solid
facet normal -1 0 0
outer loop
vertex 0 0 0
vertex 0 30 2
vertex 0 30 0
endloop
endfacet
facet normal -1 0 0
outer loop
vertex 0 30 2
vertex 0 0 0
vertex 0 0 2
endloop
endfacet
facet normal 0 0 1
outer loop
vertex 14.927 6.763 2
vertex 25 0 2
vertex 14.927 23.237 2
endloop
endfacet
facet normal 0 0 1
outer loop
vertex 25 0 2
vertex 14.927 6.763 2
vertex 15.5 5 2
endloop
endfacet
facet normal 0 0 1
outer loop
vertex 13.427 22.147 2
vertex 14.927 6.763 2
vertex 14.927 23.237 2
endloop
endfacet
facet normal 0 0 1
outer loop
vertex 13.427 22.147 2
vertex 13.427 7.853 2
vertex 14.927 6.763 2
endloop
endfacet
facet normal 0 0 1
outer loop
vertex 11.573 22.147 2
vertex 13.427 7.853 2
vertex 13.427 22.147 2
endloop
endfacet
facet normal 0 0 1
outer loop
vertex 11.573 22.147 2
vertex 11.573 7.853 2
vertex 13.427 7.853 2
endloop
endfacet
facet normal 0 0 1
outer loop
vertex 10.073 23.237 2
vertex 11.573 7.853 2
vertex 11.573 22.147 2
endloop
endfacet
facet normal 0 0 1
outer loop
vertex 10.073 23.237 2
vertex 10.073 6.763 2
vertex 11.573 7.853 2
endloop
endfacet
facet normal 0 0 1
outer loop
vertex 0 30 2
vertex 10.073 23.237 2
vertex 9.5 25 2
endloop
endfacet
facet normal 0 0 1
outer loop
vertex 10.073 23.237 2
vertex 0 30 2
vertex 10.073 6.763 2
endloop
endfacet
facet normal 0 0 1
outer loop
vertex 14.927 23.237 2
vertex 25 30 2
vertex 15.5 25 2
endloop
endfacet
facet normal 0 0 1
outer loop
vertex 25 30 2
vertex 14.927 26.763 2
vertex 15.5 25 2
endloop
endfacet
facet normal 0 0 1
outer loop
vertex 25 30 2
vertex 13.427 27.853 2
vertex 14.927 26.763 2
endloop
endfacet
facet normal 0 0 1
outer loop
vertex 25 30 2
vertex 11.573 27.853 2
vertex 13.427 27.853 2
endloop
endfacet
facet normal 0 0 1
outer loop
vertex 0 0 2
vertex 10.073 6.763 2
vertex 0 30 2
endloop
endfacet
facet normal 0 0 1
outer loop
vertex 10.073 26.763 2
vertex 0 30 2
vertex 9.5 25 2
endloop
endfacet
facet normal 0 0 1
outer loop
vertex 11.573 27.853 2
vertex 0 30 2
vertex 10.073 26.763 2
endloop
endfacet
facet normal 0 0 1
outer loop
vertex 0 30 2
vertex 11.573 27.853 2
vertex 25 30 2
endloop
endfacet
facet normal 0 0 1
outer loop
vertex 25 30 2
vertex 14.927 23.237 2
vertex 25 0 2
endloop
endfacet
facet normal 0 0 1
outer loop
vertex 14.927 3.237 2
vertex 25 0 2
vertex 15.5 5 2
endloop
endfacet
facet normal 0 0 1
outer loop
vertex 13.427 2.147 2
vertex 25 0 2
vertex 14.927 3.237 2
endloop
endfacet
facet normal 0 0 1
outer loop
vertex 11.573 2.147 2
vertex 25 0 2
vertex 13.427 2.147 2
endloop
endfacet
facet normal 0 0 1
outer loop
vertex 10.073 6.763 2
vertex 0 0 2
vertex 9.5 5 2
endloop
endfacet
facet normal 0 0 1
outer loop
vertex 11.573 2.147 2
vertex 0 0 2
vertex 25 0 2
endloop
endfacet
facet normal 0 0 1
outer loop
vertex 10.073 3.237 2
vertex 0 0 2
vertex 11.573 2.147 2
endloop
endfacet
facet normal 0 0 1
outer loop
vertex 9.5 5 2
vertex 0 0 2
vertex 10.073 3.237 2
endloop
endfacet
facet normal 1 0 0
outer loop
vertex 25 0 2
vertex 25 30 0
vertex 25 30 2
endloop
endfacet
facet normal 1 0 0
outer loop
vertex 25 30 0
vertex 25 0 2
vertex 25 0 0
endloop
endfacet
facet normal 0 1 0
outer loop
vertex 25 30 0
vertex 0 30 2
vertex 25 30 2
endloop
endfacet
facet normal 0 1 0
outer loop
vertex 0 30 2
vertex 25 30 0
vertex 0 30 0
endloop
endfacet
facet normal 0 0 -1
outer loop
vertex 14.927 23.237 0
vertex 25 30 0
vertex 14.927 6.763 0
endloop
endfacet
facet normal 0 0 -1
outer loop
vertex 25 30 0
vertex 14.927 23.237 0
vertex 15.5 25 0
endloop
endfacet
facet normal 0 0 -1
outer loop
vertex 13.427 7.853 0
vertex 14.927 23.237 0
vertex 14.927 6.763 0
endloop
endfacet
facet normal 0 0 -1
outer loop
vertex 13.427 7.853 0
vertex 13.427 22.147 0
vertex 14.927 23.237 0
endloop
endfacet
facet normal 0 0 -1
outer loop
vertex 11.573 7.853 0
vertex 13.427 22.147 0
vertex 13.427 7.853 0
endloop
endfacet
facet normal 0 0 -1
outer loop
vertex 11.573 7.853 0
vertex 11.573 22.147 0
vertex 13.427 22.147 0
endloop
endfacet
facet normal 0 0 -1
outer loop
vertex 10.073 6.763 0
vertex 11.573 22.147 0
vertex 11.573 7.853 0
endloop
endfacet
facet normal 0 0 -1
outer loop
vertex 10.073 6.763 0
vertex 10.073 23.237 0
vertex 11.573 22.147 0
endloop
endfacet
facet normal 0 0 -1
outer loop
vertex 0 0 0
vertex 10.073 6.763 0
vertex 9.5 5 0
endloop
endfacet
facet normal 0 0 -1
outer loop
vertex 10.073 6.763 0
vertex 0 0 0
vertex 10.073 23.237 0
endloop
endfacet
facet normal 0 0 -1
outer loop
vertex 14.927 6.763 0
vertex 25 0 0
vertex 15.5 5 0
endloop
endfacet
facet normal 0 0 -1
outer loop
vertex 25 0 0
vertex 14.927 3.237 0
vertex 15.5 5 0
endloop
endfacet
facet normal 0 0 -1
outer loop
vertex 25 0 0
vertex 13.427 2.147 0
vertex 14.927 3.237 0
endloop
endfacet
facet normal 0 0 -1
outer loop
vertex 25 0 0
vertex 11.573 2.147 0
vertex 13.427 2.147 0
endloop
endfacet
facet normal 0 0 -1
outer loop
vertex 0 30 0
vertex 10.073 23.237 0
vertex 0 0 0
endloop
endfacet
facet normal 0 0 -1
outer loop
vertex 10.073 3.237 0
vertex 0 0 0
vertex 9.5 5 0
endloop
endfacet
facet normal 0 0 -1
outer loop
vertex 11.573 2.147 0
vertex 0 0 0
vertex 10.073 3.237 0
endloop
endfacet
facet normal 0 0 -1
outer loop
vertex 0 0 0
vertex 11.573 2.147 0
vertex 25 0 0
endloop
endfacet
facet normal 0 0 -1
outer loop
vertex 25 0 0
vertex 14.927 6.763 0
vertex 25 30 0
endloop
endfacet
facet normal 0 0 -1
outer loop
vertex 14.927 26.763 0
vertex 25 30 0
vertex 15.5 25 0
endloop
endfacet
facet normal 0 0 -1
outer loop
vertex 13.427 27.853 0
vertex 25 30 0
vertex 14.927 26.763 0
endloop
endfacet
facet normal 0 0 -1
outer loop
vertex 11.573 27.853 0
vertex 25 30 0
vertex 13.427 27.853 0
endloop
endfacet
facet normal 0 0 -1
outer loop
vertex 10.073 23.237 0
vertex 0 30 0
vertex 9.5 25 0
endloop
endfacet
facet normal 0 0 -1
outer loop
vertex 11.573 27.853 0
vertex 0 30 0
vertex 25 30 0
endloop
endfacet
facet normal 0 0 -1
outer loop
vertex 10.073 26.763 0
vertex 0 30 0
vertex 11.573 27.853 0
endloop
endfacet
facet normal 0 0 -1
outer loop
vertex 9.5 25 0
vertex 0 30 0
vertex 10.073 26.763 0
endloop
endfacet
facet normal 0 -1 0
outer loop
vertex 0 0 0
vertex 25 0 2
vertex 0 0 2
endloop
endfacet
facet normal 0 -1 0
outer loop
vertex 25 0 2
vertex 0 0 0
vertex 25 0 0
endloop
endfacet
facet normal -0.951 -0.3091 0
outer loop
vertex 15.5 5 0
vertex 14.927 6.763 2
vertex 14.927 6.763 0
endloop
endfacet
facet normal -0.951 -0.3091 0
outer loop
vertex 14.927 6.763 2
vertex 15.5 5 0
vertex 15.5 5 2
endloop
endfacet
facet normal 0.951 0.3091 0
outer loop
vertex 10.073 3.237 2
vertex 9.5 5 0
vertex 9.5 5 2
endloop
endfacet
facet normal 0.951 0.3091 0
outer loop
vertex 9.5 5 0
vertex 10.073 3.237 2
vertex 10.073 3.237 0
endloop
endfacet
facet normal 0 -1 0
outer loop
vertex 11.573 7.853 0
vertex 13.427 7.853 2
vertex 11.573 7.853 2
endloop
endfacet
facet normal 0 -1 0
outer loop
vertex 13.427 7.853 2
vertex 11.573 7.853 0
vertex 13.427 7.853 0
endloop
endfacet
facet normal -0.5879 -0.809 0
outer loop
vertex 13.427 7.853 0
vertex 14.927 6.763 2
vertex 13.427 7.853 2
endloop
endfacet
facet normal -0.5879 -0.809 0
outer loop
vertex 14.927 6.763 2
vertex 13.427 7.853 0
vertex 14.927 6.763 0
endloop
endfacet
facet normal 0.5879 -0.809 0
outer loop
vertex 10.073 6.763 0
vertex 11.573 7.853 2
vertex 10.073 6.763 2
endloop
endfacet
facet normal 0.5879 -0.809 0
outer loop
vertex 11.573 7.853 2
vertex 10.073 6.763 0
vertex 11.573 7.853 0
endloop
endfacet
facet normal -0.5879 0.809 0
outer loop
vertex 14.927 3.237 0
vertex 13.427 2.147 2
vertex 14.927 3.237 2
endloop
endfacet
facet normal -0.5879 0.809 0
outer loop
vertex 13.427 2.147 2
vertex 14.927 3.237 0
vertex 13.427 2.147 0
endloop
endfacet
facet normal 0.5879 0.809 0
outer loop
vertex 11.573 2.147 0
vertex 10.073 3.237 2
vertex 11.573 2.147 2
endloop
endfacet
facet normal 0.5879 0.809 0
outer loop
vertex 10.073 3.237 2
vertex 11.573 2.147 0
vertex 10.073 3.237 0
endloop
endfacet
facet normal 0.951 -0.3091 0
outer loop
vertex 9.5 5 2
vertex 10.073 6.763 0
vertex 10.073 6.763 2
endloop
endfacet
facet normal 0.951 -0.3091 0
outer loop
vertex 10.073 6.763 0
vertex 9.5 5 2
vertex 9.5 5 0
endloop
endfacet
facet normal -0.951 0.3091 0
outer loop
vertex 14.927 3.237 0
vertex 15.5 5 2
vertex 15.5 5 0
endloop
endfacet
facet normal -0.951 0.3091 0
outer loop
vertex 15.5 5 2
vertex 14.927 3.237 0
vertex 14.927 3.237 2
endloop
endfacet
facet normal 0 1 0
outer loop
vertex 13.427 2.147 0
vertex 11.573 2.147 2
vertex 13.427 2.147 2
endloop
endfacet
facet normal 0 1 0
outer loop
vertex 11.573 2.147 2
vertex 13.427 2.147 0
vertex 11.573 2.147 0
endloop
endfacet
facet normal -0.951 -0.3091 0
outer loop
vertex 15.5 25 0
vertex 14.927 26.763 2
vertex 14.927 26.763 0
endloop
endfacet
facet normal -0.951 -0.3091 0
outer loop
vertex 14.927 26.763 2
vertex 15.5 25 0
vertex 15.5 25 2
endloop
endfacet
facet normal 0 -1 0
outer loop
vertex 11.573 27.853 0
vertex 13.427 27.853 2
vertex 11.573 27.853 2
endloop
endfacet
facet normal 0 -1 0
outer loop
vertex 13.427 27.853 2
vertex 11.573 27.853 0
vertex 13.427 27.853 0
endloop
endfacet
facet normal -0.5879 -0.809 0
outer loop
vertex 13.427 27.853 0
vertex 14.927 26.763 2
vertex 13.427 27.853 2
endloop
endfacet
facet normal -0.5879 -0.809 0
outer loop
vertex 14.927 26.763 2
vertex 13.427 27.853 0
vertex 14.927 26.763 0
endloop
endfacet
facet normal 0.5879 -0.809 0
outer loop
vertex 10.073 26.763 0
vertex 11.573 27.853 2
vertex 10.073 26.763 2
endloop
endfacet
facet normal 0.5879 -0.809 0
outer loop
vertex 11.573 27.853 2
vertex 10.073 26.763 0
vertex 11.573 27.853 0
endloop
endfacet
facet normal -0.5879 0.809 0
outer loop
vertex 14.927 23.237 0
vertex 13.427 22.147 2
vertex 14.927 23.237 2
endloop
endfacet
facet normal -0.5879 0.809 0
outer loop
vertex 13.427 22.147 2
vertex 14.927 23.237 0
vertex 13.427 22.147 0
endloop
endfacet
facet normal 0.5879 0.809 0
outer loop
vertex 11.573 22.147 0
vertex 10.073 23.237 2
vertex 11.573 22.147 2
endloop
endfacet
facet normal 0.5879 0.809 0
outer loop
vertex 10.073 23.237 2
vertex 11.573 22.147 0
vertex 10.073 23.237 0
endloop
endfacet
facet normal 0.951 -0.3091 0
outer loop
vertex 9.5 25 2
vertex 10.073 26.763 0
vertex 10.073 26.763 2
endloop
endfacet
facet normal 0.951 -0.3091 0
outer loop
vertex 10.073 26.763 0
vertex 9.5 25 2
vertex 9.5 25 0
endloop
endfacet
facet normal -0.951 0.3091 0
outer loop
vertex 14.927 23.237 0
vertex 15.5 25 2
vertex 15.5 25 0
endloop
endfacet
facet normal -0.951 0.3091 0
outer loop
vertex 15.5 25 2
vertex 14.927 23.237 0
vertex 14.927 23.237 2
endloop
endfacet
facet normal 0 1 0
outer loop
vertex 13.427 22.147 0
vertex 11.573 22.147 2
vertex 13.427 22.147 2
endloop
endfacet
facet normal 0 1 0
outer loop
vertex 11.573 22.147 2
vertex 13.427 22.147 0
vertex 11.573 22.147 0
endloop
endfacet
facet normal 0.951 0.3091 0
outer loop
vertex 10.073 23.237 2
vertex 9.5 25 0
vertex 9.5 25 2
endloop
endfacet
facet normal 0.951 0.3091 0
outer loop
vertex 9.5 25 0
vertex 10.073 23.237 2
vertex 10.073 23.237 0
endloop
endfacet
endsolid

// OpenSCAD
difference() {
    cube([25,30,2]);
    translate([12.5,5,-1])cylinder(r=3,h=4);
    translate([12.5,5+20,-1])cylinder(r=3,h=4);
}
